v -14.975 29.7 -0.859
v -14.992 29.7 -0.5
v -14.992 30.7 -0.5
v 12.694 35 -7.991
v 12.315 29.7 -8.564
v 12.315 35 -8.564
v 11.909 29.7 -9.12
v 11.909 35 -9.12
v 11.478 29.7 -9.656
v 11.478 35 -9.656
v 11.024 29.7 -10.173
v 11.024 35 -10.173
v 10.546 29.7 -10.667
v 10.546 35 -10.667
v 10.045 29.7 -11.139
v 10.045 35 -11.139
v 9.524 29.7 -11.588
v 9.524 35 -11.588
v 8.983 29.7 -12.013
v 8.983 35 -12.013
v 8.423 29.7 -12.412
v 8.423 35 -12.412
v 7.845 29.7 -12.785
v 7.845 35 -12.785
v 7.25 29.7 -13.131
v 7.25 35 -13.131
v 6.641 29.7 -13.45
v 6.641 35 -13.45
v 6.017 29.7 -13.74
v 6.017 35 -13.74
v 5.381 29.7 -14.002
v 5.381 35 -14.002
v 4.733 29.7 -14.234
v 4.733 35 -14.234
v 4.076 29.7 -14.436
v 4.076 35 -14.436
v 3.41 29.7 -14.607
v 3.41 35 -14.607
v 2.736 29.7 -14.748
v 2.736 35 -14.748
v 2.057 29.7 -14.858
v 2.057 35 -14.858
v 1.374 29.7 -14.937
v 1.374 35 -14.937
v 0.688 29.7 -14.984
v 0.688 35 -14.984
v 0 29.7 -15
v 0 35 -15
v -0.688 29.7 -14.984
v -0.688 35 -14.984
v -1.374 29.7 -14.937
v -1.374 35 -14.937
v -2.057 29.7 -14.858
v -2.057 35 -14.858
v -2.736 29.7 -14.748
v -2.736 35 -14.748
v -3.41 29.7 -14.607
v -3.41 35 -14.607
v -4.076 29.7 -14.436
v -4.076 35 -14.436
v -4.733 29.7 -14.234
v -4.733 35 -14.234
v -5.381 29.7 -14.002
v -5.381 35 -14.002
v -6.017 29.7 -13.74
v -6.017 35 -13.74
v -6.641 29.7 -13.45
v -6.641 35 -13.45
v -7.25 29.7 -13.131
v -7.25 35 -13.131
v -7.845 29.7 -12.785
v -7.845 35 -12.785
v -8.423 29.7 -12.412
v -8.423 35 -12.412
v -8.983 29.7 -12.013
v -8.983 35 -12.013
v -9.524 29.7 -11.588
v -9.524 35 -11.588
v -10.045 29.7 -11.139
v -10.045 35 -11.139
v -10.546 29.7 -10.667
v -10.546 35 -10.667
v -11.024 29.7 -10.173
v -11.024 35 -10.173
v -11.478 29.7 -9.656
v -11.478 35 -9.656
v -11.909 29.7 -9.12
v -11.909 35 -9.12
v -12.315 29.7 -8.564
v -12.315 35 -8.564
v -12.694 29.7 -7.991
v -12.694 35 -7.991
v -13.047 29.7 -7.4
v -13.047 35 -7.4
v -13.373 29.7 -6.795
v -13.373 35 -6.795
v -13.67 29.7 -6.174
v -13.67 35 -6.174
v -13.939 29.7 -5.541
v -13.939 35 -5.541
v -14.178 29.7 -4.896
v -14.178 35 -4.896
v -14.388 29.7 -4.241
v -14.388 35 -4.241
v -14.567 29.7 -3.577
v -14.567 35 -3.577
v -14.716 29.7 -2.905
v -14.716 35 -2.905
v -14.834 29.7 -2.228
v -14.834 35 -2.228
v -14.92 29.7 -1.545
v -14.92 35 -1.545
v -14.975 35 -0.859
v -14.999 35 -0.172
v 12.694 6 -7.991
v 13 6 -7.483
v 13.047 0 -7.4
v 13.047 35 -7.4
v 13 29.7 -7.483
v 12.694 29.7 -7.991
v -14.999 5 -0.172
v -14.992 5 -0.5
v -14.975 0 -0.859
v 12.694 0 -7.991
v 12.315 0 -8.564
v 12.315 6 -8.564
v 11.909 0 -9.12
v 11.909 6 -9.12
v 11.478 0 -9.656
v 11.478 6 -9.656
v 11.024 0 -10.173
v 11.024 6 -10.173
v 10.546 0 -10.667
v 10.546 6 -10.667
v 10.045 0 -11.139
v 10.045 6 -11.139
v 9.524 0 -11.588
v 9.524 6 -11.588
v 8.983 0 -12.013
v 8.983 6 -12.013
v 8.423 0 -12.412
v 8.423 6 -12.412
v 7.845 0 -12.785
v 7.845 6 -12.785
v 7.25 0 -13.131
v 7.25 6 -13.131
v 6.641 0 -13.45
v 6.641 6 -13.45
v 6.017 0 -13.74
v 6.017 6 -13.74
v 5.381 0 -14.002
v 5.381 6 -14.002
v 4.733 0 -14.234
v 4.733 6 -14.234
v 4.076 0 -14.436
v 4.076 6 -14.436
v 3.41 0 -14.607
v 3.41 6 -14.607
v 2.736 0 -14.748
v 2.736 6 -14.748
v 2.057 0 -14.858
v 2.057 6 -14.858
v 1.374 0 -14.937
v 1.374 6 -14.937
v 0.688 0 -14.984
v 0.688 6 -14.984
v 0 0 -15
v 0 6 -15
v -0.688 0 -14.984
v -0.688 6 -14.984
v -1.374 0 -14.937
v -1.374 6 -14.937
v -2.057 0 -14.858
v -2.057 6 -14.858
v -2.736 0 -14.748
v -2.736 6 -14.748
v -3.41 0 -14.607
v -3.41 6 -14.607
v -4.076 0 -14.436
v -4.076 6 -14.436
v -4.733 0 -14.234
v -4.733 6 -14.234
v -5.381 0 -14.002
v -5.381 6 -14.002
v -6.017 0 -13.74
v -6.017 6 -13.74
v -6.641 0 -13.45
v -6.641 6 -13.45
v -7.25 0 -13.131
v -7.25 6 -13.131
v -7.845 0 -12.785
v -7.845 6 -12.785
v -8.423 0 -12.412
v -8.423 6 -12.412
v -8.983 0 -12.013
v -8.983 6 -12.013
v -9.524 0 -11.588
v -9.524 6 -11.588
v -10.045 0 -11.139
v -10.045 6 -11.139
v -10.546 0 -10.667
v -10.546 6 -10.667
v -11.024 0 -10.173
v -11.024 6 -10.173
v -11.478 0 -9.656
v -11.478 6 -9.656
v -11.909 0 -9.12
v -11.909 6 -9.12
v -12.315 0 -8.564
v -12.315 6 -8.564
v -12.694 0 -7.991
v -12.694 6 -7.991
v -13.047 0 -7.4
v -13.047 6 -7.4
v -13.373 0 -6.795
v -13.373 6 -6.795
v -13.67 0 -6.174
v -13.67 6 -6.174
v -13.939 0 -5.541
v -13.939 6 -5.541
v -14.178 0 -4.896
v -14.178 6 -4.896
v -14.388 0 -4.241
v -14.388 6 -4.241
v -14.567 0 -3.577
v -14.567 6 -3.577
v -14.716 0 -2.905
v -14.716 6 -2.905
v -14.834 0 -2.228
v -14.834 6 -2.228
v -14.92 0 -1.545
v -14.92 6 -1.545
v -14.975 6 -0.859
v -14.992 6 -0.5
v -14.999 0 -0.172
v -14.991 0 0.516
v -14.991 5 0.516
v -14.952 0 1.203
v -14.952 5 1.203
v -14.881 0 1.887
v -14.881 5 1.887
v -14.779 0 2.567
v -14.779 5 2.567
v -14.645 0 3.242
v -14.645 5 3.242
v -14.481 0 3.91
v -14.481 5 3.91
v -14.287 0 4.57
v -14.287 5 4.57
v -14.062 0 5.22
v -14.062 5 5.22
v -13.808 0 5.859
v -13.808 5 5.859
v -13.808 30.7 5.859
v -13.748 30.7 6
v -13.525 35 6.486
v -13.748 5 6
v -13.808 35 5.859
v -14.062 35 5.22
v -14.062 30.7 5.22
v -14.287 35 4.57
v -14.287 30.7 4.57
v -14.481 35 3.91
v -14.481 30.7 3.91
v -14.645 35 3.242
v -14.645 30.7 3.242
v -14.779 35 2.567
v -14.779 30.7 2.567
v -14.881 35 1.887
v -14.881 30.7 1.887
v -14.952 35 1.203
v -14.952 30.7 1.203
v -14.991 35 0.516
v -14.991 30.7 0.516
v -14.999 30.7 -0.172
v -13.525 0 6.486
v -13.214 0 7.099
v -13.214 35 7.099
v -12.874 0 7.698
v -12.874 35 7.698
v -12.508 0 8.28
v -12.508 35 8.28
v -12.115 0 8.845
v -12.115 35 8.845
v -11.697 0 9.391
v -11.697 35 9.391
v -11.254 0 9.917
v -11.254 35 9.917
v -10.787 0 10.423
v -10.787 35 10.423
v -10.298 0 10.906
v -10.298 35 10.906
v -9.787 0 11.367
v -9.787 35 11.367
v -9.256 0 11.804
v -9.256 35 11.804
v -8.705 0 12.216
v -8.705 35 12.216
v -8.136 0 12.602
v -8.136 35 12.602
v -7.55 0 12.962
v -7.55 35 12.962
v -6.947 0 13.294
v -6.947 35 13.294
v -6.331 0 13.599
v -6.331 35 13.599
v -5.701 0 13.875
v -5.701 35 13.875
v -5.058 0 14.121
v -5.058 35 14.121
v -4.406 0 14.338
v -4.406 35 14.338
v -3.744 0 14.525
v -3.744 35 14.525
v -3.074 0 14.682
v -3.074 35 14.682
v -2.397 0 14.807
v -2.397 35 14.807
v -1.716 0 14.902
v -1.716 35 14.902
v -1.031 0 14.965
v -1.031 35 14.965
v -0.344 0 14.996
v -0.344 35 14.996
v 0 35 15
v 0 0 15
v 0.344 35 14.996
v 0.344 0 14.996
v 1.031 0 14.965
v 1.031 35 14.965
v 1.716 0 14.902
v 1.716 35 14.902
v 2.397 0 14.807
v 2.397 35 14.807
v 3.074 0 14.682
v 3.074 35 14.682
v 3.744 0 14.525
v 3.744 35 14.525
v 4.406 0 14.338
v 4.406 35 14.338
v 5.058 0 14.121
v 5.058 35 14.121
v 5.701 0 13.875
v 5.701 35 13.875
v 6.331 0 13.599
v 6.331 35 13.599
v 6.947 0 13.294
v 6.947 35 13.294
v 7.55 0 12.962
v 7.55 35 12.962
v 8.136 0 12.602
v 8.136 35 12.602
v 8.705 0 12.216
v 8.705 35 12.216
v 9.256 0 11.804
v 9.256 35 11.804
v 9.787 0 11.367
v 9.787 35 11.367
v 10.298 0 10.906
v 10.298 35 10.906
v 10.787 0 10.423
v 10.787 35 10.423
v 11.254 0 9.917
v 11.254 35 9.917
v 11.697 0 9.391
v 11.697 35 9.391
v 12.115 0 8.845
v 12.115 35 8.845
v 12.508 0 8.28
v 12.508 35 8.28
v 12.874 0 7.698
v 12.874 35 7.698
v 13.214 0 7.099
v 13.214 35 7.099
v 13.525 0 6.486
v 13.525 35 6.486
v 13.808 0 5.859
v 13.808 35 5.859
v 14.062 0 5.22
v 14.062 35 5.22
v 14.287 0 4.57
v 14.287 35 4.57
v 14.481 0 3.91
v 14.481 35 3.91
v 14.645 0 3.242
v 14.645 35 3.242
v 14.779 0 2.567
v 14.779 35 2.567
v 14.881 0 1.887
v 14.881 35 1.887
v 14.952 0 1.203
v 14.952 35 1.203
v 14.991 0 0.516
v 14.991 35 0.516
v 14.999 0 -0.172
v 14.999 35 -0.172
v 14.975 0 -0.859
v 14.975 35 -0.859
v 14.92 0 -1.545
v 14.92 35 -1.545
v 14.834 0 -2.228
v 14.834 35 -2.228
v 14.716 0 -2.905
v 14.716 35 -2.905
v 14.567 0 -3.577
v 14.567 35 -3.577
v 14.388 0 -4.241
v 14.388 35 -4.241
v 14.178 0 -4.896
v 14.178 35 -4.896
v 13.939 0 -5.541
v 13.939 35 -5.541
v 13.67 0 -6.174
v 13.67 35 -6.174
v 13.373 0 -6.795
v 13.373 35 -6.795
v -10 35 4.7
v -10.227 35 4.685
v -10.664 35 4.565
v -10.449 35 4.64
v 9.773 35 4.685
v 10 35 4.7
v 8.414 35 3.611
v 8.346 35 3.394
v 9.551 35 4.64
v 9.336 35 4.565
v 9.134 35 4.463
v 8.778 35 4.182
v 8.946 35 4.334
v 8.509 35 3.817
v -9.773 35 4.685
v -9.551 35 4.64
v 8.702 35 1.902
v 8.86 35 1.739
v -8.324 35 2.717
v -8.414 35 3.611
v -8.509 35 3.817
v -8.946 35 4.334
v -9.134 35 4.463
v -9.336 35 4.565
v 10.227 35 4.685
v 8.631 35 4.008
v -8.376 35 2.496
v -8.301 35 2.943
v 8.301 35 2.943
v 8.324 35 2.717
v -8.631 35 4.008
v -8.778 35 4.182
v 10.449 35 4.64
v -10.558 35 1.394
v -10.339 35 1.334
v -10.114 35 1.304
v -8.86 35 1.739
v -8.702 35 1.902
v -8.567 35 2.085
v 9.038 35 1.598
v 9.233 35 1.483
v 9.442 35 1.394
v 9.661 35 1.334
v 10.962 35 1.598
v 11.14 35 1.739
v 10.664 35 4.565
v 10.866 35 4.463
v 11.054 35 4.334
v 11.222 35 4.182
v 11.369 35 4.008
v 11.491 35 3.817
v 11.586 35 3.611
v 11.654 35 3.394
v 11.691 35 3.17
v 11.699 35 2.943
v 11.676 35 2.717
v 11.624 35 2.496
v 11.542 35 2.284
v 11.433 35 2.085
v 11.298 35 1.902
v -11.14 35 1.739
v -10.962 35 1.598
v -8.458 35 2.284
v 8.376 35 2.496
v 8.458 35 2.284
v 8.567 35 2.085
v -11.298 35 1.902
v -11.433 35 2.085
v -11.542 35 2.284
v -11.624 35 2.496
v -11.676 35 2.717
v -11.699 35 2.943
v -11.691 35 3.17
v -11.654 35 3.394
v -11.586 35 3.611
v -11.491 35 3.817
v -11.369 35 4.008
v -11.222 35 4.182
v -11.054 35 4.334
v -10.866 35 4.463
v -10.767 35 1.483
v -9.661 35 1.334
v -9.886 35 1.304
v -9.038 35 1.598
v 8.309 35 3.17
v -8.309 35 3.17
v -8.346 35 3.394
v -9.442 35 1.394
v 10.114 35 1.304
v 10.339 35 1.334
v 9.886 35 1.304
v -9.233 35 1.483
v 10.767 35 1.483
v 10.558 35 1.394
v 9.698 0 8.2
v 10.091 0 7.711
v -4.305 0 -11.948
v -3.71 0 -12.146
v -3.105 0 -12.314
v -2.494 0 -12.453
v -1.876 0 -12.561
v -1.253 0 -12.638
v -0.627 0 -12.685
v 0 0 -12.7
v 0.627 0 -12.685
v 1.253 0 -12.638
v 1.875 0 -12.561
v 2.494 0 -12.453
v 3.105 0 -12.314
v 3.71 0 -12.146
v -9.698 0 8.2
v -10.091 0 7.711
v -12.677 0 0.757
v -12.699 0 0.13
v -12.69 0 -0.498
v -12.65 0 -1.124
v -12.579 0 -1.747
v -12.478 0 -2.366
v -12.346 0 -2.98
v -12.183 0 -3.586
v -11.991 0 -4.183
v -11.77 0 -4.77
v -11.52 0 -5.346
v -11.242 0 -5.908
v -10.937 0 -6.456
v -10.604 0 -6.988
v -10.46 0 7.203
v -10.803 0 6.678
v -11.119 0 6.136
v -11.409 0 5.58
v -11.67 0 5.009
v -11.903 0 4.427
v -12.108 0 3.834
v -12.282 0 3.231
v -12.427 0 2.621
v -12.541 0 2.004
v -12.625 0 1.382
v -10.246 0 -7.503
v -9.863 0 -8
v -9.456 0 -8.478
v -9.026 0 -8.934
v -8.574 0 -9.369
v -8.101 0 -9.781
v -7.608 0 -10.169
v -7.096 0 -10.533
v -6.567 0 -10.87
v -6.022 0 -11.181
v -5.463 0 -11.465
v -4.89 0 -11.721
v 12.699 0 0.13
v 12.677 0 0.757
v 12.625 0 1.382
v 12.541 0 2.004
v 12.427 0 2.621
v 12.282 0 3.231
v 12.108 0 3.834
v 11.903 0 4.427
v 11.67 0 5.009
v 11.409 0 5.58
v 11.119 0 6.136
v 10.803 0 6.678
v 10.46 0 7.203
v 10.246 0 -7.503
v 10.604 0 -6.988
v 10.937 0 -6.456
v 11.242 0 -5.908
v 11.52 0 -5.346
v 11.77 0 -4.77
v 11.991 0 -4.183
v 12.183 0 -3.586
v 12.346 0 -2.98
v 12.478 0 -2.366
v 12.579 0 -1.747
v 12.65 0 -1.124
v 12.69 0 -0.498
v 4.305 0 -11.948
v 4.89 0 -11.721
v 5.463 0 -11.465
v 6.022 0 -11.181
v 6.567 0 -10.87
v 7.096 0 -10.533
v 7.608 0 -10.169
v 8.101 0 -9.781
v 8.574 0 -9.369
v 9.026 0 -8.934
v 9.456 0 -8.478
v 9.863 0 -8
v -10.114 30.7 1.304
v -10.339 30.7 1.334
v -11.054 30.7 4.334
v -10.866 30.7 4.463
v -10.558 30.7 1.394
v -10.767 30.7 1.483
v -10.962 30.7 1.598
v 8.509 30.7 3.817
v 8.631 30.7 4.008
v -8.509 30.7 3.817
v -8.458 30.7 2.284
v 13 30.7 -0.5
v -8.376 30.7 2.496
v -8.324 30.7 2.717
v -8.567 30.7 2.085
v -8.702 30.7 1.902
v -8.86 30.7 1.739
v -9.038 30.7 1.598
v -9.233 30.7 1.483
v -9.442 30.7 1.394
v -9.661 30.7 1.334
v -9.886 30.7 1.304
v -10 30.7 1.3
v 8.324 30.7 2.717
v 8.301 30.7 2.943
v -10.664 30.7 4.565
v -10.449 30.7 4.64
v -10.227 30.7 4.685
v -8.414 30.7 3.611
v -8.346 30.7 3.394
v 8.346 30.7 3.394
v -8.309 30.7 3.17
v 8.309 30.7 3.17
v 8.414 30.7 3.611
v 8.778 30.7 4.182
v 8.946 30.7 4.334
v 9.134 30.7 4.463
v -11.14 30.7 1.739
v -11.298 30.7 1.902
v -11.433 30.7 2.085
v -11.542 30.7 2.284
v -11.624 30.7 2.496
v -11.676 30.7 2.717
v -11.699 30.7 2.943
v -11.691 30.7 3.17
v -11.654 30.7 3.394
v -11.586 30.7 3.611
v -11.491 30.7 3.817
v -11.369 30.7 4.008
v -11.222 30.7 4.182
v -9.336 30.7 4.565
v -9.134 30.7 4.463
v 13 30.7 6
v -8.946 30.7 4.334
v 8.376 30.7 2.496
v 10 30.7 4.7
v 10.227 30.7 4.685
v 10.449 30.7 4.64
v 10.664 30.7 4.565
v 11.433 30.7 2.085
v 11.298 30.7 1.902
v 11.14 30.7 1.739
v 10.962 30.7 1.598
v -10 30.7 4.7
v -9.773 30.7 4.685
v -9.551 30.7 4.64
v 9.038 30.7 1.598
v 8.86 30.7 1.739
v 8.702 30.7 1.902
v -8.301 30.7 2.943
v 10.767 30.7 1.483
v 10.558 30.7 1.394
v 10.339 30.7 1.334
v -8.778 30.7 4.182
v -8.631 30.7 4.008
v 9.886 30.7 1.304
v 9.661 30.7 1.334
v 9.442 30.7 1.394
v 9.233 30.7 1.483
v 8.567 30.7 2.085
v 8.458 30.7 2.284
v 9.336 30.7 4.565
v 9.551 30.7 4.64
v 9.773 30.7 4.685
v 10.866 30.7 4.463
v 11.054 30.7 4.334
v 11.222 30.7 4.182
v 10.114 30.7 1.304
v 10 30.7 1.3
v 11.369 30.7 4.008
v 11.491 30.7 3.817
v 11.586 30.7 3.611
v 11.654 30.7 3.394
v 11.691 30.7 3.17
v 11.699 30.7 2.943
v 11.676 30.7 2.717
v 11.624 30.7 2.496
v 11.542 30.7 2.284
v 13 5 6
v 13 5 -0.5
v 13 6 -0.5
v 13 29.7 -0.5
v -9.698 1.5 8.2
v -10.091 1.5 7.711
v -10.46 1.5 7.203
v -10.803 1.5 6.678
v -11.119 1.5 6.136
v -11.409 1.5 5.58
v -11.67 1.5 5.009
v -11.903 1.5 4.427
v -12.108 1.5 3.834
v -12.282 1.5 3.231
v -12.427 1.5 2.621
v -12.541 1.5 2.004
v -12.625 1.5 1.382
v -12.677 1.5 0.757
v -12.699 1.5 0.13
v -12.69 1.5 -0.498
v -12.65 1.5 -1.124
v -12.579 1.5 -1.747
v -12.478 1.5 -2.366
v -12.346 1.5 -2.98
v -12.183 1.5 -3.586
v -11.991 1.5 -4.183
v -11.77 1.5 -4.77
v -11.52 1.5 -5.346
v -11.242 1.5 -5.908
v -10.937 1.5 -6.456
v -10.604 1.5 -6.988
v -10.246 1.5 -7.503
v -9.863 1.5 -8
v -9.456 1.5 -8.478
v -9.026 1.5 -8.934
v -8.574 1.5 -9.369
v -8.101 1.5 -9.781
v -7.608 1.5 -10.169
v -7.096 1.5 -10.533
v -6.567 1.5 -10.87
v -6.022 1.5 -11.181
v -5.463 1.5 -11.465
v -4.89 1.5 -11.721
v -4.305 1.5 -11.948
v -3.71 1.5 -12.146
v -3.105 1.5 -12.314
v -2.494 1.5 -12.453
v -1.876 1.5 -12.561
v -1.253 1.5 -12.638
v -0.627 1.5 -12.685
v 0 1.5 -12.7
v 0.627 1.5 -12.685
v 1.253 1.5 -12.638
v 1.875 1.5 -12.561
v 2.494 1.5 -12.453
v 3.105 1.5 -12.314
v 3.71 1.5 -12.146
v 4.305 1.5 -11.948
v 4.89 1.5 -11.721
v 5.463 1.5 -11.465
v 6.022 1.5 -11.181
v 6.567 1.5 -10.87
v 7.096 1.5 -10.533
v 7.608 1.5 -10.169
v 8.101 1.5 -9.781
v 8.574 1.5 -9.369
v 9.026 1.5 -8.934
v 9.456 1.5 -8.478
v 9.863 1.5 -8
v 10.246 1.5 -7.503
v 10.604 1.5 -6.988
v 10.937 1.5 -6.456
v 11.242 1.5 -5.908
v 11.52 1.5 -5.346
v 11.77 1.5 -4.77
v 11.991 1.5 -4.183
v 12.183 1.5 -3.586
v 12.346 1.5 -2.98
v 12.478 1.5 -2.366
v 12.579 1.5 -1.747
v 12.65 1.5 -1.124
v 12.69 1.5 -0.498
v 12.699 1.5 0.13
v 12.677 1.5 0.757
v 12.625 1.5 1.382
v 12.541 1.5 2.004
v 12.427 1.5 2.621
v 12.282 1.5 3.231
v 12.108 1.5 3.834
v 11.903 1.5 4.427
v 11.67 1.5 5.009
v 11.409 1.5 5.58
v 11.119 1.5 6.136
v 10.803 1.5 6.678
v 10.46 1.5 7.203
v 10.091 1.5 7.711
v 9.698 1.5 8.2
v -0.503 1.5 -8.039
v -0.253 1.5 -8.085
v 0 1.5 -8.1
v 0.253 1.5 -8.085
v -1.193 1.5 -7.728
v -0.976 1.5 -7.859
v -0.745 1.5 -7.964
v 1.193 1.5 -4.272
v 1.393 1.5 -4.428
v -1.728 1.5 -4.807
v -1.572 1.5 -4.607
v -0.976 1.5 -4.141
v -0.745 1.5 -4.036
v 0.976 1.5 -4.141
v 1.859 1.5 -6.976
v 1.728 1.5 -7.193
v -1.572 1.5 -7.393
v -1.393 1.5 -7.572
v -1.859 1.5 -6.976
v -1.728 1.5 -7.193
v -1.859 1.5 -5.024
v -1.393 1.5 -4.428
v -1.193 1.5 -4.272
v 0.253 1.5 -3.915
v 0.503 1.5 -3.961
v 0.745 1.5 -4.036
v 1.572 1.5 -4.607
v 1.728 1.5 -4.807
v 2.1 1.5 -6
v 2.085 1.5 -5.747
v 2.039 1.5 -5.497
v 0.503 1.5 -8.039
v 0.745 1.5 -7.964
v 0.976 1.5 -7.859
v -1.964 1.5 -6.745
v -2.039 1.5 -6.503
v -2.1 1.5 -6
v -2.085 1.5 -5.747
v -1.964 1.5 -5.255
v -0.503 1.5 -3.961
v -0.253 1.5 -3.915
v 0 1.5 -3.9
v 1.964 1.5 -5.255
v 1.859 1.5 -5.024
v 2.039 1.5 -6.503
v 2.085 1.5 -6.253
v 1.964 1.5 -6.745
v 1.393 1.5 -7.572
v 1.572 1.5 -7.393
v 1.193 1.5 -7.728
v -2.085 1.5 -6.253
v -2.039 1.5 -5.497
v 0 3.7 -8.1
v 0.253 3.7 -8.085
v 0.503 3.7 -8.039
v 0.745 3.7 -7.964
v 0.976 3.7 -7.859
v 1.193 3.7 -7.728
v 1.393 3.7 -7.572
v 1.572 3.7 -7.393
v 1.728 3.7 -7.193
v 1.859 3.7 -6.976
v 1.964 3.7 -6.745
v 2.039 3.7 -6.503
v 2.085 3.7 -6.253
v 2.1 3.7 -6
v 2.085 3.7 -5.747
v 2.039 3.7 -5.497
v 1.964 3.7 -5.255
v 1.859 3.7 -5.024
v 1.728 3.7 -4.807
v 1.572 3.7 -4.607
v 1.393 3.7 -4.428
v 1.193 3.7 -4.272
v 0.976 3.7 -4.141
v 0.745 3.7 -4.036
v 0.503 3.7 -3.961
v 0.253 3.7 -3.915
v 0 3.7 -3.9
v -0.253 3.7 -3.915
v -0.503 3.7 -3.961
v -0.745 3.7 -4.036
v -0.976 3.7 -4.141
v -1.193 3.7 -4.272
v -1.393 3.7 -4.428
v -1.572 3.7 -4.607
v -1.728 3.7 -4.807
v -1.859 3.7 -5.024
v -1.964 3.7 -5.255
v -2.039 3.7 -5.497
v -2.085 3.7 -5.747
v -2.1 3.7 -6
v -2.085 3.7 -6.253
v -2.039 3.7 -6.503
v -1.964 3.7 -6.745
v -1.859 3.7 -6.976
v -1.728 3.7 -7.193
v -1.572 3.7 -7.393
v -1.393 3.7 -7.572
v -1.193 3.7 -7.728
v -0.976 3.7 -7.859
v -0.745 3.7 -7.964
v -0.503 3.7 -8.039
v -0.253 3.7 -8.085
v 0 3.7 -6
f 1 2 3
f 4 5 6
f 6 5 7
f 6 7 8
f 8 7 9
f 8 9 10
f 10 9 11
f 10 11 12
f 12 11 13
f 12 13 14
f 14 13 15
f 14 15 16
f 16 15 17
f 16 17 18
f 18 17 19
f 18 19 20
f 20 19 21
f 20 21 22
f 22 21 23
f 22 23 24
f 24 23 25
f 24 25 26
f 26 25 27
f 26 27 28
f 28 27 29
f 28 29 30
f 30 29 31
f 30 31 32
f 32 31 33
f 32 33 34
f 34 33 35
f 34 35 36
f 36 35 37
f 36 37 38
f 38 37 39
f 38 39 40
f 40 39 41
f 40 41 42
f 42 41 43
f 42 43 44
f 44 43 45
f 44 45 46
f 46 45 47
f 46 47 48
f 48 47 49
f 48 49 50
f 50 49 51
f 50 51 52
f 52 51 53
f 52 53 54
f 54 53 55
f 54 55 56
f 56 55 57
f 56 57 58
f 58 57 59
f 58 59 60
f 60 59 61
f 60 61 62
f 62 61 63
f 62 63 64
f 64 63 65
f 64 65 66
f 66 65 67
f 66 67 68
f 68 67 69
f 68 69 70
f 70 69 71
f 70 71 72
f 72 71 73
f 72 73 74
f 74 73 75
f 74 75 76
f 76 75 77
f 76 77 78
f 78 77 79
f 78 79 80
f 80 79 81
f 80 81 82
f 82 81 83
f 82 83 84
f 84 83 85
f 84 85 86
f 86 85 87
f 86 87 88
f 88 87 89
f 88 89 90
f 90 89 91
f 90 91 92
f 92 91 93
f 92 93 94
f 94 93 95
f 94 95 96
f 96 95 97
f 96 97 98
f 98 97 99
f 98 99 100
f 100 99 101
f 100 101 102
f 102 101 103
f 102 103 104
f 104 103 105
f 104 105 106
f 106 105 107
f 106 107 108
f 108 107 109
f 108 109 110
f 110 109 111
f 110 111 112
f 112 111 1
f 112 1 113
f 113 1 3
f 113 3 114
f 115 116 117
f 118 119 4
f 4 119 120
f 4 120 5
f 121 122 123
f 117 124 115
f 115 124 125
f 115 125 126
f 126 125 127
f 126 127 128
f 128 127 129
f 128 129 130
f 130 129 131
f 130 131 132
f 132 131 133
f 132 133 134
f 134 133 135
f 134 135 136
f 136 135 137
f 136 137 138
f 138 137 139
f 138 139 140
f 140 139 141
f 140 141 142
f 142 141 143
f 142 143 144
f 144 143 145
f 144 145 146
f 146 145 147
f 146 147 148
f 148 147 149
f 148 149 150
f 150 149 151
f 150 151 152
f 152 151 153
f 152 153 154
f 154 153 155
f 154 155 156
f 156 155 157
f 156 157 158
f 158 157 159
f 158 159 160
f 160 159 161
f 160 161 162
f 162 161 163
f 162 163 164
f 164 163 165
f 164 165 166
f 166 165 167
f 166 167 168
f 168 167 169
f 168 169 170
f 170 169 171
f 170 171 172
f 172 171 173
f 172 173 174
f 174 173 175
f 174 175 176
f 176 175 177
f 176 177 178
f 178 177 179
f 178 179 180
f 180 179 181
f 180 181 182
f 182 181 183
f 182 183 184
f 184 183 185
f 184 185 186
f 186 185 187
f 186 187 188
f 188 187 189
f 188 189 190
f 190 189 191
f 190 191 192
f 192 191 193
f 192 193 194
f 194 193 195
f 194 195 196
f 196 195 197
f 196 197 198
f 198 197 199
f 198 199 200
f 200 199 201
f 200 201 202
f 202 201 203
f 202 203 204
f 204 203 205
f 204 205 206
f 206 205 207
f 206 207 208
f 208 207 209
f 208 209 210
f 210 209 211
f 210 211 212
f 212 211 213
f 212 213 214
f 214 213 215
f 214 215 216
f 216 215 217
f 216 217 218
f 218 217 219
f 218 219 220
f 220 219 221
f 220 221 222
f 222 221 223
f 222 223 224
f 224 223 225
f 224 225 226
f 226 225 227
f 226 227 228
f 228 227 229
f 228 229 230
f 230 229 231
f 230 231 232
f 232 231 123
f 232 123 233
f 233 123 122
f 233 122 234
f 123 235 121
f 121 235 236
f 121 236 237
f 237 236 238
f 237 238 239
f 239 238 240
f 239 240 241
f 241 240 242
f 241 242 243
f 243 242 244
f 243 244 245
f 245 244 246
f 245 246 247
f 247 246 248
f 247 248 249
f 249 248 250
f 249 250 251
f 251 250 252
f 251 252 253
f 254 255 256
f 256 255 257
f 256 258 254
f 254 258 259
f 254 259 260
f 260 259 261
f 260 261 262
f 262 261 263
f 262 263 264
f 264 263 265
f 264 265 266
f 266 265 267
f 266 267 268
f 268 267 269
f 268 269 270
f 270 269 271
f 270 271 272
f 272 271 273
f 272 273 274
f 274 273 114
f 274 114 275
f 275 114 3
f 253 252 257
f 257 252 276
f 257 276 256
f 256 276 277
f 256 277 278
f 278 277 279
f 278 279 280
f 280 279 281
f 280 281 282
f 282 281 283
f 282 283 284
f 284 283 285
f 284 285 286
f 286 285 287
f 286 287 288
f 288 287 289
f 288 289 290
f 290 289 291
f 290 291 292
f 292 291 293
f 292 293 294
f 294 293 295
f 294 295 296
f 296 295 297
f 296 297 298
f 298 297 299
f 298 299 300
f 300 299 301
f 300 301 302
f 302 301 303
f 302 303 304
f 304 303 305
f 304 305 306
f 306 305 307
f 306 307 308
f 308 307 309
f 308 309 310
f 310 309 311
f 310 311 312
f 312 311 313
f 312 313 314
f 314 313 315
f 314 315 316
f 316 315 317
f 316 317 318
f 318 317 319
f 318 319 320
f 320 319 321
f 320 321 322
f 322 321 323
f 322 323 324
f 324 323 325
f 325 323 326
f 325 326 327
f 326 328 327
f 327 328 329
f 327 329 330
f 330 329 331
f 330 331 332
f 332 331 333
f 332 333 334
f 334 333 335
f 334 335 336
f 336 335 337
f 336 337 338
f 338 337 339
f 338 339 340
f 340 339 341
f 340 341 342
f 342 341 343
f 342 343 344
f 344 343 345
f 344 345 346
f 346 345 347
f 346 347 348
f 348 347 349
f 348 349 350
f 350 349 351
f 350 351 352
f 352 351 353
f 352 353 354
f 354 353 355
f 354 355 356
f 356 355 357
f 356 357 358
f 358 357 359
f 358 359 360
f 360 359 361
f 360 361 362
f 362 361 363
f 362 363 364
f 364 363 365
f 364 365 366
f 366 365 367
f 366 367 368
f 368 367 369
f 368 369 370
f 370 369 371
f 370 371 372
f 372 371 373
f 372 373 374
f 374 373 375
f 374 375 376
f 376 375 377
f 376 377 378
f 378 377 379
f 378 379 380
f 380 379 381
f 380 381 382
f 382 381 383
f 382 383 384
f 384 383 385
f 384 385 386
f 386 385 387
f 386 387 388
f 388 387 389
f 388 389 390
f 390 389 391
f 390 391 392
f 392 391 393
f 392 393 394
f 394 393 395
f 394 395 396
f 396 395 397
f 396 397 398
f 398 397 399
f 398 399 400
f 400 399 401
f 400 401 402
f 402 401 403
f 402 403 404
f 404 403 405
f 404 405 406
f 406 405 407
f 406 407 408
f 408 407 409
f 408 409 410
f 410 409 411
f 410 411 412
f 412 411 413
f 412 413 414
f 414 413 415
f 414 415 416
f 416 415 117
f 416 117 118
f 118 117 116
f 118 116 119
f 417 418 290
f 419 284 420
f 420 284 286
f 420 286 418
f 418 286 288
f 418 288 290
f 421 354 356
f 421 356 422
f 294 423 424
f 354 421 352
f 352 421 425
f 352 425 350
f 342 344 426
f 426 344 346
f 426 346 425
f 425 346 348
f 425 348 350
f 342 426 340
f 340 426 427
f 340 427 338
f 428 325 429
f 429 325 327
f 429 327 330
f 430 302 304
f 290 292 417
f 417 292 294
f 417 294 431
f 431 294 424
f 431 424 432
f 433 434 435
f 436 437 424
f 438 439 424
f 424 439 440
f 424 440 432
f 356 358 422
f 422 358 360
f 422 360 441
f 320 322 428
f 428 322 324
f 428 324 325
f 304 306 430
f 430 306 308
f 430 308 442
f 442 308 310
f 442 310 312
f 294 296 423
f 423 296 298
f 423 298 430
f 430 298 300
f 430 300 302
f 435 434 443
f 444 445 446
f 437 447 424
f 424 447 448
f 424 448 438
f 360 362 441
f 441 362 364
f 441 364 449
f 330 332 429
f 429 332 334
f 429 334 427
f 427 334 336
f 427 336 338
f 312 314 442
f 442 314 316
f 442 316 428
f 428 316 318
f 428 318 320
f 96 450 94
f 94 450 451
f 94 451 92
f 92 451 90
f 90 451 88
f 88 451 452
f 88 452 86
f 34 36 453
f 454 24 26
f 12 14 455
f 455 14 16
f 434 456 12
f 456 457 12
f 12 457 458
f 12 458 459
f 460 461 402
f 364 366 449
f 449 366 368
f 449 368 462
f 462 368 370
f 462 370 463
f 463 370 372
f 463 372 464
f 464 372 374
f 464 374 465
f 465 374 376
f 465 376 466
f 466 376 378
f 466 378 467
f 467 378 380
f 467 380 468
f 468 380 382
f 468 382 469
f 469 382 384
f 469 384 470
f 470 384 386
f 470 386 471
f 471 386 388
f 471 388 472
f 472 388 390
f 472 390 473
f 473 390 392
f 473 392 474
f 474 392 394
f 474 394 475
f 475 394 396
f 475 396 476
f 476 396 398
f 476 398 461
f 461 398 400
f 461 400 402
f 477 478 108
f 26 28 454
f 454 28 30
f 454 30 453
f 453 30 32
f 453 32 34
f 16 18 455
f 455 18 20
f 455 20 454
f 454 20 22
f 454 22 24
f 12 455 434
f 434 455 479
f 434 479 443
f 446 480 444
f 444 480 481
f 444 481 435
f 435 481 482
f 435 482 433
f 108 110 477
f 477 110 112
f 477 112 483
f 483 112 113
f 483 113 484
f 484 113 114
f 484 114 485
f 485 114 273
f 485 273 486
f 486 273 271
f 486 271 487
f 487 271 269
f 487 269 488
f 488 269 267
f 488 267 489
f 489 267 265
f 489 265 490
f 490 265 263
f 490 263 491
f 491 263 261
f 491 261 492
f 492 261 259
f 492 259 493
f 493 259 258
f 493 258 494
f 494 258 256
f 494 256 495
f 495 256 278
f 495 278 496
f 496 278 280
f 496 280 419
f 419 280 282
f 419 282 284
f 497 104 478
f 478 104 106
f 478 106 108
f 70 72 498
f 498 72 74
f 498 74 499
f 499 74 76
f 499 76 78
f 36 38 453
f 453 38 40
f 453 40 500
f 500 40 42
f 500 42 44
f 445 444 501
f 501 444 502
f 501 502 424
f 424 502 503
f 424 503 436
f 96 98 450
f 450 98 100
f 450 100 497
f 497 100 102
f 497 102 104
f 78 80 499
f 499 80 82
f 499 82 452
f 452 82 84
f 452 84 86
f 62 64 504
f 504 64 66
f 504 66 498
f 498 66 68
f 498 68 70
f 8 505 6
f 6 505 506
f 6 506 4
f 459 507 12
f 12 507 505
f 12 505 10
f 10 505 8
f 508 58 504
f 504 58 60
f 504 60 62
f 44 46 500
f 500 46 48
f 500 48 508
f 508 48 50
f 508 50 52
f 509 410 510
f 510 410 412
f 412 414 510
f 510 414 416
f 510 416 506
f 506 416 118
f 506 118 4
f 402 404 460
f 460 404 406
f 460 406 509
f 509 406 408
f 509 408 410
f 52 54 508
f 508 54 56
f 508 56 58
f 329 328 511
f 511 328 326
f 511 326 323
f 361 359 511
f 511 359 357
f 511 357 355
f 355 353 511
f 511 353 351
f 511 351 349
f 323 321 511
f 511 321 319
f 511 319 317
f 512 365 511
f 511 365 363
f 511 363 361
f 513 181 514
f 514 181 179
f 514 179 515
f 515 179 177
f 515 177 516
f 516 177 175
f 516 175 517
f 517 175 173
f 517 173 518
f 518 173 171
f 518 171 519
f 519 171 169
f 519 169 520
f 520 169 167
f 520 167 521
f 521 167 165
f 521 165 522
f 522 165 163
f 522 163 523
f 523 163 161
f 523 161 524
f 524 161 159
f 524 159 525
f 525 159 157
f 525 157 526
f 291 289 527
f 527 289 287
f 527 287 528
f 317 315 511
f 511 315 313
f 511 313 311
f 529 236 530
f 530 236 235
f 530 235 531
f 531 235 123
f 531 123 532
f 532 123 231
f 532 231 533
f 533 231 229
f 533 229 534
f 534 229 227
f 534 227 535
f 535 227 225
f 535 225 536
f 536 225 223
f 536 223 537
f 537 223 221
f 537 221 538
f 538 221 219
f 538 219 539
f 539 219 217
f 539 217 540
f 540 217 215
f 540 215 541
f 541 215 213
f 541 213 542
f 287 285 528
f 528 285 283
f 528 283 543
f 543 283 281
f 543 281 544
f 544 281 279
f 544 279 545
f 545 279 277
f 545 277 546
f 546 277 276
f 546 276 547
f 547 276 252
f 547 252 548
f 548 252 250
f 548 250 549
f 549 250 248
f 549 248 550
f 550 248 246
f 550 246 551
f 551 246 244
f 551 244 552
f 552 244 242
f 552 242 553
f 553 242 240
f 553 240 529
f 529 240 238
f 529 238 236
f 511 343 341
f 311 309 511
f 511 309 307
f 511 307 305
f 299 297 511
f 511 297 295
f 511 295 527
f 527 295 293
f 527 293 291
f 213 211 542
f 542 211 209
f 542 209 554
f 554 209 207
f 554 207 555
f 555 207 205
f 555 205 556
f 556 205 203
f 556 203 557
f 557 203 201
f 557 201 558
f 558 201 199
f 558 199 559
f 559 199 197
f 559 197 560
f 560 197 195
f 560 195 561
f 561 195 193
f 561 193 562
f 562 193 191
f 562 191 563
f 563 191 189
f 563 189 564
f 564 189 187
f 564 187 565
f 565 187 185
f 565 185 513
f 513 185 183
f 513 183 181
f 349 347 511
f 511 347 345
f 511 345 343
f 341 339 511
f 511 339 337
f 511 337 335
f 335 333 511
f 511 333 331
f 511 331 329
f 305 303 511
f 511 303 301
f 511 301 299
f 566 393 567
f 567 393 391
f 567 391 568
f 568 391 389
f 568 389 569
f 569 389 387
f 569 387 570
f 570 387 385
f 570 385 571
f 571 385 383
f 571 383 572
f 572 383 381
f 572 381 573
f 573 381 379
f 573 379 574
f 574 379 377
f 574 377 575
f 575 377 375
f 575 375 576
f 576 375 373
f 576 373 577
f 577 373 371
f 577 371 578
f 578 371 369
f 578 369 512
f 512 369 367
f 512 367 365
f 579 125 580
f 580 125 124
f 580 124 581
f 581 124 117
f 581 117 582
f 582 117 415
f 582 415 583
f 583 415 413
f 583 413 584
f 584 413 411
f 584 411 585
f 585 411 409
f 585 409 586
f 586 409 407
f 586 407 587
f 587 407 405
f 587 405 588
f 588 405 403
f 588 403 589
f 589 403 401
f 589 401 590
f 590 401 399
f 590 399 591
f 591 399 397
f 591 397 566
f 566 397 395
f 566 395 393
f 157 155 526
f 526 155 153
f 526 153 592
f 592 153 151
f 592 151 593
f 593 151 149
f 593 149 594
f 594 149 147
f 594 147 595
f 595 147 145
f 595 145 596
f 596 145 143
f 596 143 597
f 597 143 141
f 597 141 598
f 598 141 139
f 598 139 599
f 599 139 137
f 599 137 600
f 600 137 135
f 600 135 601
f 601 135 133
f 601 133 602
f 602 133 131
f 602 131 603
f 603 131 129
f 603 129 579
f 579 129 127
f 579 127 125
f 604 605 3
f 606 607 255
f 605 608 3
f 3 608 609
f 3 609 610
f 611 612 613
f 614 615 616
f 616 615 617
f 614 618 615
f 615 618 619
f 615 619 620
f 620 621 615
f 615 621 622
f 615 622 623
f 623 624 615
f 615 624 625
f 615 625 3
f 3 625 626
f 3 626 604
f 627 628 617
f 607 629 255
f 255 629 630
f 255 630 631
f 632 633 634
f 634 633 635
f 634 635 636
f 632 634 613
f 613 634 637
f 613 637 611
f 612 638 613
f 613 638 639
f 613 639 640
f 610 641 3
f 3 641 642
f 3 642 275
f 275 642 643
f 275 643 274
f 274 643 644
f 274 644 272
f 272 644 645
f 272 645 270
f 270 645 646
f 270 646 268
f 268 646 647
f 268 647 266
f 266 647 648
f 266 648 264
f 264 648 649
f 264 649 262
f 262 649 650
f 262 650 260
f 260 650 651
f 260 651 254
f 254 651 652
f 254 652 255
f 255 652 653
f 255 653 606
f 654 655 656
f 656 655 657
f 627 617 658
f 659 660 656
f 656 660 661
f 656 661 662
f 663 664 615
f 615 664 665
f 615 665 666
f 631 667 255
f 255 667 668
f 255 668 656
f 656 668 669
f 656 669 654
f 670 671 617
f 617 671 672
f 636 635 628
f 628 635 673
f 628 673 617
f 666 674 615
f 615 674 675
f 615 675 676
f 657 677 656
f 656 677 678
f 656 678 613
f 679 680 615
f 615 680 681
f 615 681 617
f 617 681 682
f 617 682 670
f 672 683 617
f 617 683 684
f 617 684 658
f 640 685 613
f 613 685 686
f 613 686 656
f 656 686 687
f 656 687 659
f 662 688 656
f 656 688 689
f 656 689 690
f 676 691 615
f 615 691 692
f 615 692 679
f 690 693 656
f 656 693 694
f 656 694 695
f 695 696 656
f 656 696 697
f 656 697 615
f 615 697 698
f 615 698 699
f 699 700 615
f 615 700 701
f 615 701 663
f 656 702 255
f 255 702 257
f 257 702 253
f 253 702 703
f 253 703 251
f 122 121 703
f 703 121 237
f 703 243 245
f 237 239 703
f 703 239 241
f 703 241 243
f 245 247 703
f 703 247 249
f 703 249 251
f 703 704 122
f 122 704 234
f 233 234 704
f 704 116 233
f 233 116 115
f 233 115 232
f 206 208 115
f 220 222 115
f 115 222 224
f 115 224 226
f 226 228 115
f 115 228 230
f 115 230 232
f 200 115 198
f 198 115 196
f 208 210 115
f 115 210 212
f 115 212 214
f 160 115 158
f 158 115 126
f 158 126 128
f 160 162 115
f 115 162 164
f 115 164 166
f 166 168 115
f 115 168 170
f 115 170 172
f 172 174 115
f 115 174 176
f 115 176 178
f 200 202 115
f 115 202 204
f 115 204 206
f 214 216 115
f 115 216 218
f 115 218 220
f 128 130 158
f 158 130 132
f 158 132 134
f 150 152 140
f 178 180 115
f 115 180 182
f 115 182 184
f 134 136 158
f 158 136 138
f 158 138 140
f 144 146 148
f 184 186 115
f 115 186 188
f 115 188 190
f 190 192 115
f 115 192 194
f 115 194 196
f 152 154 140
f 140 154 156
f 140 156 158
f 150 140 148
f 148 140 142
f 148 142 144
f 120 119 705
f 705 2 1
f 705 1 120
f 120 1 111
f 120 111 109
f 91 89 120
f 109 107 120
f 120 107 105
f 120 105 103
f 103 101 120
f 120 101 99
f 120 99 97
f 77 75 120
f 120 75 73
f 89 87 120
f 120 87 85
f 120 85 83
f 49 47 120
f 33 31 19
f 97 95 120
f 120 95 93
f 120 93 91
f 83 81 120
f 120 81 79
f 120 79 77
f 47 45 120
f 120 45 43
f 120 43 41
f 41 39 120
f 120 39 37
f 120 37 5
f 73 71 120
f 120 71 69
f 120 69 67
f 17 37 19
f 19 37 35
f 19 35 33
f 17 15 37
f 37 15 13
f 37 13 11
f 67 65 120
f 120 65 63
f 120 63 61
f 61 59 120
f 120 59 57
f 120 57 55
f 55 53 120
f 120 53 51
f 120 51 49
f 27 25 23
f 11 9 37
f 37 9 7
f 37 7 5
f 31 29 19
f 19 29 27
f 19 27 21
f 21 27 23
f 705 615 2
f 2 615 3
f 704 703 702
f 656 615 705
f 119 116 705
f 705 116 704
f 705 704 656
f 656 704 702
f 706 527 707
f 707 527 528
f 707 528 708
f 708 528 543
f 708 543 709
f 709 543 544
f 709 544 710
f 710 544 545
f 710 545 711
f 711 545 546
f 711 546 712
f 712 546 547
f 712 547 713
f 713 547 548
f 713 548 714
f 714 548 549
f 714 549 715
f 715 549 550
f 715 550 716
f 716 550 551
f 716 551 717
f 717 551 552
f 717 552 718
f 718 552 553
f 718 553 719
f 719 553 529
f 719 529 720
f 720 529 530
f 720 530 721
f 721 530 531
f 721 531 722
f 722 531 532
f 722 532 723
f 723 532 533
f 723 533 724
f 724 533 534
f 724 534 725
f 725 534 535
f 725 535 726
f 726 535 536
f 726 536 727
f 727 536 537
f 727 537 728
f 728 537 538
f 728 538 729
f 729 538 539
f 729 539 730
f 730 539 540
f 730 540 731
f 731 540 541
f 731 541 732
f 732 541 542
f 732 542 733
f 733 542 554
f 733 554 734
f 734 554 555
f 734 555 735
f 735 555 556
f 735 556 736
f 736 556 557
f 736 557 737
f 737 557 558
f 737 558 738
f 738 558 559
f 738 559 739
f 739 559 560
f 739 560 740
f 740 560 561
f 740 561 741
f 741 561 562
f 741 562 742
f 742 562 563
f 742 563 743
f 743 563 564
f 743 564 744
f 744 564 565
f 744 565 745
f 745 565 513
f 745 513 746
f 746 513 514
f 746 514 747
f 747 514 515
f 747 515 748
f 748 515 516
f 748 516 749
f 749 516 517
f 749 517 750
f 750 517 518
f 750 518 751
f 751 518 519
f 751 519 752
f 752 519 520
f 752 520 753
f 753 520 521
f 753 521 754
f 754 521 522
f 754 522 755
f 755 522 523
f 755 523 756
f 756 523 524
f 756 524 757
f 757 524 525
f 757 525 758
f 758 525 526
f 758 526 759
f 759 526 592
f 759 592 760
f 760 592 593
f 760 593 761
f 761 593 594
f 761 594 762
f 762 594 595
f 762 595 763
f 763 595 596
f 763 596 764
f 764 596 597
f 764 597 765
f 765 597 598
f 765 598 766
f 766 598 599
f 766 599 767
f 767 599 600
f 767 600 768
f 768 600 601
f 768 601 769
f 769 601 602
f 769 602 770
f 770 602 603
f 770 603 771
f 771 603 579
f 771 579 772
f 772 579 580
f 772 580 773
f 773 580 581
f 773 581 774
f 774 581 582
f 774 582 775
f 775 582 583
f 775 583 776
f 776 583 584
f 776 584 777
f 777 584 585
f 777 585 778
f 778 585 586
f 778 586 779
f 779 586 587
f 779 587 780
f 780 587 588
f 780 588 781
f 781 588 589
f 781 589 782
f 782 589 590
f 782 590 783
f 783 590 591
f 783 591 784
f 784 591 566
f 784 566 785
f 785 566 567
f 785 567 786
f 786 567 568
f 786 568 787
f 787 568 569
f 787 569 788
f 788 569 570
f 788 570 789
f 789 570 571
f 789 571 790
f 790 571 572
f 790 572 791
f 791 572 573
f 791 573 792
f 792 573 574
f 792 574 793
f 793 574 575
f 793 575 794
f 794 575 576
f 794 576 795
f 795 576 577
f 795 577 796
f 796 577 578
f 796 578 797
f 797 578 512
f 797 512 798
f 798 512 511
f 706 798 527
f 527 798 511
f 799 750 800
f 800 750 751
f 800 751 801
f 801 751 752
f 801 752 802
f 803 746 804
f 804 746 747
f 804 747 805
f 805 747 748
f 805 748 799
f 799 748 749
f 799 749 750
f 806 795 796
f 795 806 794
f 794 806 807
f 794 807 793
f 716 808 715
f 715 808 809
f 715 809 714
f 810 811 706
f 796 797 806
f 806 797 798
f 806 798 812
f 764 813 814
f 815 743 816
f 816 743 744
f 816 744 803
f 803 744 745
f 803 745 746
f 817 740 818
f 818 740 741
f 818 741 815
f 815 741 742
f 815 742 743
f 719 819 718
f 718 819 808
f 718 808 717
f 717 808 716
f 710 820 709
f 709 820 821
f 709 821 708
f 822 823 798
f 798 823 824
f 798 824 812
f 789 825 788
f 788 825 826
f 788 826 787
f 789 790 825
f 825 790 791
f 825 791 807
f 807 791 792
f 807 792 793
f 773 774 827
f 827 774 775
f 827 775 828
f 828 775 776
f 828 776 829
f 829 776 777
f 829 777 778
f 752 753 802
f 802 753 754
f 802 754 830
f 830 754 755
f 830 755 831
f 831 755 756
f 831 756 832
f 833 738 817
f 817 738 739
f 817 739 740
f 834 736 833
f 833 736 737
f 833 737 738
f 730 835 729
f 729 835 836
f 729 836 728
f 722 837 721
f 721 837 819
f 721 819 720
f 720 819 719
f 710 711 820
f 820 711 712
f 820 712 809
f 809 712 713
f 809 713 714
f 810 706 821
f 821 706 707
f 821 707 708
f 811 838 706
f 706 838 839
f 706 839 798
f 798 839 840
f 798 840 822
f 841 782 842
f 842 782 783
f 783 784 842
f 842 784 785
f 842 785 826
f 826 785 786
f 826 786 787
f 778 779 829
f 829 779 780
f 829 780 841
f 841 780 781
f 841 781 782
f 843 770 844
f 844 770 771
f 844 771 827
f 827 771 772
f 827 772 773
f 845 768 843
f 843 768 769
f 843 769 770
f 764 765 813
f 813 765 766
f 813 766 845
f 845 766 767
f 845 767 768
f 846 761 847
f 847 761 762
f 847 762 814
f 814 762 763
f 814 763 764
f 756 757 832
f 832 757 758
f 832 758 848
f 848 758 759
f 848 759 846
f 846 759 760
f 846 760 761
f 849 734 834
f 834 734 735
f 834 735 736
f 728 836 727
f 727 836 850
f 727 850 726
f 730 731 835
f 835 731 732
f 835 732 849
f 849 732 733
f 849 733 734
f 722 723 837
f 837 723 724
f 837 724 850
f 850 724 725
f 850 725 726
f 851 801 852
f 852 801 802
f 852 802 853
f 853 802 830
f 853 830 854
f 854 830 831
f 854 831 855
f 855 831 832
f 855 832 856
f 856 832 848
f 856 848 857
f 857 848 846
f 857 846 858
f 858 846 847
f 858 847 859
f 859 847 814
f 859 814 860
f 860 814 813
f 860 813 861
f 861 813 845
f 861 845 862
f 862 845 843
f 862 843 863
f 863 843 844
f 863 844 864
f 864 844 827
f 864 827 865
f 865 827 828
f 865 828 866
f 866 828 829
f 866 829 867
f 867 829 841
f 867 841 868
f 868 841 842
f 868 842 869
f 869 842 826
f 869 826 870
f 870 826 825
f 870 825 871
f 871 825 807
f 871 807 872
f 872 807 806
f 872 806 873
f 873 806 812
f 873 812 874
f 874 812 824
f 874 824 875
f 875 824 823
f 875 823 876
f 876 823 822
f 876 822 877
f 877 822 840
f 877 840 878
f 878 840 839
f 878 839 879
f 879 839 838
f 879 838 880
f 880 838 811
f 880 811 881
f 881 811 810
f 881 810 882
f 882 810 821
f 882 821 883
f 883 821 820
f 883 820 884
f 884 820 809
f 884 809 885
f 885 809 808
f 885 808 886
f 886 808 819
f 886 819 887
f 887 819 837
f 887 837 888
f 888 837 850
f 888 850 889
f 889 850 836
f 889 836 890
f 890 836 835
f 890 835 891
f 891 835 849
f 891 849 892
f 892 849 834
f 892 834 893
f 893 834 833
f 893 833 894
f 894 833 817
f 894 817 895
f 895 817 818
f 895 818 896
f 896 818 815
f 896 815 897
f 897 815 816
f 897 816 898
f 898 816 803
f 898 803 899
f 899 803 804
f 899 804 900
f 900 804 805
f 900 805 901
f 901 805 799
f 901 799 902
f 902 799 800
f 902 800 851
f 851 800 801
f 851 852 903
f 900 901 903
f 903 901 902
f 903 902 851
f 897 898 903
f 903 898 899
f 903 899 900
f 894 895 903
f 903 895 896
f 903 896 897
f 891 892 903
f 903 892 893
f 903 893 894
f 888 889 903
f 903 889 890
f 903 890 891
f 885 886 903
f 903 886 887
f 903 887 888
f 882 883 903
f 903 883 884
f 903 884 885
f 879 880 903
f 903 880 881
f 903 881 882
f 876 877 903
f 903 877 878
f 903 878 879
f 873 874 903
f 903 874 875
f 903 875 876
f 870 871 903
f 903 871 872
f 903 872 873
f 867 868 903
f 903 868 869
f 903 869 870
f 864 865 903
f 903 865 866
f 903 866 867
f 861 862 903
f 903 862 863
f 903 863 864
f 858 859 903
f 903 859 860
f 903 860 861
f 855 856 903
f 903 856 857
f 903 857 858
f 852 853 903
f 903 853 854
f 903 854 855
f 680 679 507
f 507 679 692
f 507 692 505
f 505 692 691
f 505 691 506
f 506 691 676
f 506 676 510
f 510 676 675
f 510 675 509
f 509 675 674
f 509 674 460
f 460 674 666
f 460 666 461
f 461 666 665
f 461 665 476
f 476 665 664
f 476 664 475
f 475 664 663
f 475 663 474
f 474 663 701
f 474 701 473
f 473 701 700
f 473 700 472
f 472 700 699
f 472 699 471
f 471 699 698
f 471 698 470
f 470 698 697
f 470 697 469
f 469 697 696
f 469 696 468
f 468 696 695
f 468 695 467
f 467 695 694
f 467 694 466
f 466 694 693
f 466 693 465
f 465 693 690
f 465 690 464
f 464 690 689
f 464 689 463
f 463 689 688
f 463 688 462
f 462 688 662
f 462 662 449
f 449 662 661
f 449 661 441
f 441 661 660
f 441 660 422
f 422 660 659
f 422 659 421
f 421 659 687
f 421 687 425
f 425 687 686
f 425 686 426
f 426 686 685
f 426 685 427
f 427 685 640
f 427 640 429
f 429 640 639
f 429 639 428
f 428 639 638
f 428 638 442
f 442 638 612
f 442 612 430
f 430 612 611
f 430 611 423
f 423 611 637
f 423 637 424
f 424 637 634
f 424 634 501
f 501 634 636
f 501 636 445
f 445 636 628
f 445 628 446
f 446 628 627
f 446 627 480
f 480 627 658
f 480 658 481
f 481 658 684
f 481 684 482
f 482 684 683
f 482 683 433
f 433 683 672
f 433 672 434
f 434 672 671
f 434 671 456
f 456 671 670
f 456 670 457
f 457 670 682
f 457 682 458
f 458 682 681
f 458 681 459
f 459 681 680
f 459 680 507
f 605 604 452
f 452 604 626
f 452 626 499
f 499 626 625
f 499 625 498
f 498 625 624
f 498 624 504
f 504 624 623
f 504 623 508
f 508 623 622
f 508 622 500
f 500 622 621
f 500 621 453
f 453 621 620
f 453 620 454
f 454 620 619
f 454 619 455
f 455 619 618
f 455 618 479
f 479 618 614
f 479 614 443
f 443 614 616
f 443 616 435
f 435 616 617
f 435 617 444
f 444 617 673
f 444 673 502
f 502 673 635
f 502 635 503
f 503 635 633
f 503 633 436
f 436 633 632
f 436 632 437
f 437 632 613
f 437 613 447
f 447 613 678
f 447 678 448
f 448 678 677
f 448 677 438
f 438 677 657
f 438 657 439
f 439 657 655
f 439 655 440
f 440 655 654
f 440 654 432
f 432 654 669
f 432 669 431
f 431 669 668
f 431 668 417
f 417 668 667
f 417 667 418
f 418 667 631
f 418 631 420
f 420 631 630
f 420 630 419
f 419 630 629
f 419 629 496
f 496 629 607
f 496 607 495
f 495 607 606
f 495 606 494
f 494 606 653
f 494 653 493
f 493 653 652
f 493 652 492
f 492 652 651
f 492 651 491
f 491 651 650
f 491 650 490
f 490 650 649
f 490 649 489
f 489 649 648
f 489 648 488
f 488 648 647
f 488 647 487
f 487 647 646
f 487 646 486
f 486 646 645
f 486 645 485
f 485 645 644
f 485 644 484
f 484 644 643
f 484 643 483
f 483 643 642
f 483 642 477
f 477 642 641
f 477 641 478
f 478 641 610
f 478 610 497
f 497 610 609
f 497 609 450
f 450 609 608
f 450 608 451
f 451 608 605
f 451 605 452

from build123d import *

# Parameters (mm, degrees)
SKETCH1_R               = 15
BOSS_EXTRUDE1_DEPTH     = 35
CUT_EXTRUDE4_DEPTH      = 13
CUT_EXTRUDE4_DEPTH_BACK = 16
CUT_EXTRUDE5_DEPTH      = 1.5
SKETCH7_R               = 2.1
CUT_EXTRUDE6_DEPTH      = 2.2
CUT_EXTRUDE7_REACH      = 42.927
SKETCH8_R               = 1.7


with BuildPart() as part:
    # Sketch1 → Boss-Extrude1 (new body)
    with BuildSketch(Plane(origin=(0, 0, 0), x_dir=(1, 0, 0), z_dir=(0, 1, 0))):
        with Locations(Location((0, 0, 0), (0, 0, 270))):
            Circle(SKETCH1_R)
    extrude(amount=BOSS_EXTRUDE1_DEPTH)

    # Sketch5 → Cut-Extrude4 (cut, two sides: drawn at the far end of the back side and taken through both)
    with BuildSketch(Plane(origin=(0, 0, 0), x_dir=(0, 0, -1), z_dir=(1, 0, 0)).offset(-CUT_EXTRUDE4_DEPTH_BACK)):
        Polygon((-6, 30.7), (-6, 5), (0.5, 5), (0.5, 6), (16, 6), (16, 29.7), (0.5, 29.7), (0.5, 30.7), align=None)
    extrude(amount=CUT_EXTRUDE4_DEPTH + CUT_EXTRUDE4_DEPTH_BACK, mode=Mode.SUBTRACT)

    # Sketch6 → Cut-Extrude5 (cut)
    with BuildSketch(Plane.XZ):
        with BuildLine():
            Line((-9.697937925, 8.2), (9.697937925, 8.2))
            ThreePointArc((9.697937925, 8.2), (0, -12.7), (-9.697937925, 8.2))
        make_face()
    extrude(amount=-CUT_EXTRUDE5_DEPTH, mode=Mode.SUBTRACT)

    # Sketch7 → Cut-Extrude6 (cut)
    with BuildSketch(Plane.XZ.offset(-1.5)):
        with Locations(Location((0, -6, 0), (0, 0, 270))):
            Circle(SKETCH7_R)
    extrude(amount=-CUT_EXTRUDE6_DEPTH, mode=Mode.SUBTRACT)

    # Sketch8 → Cut-Extrude7 (cut, up to next)
    with BuildSketch(Plane(origin=(0, 35, 0), x_dir=(1, 0, 0), z_dir=(0, 1, 0)), mode=Mode.PRIVATE) as cut_extrude7_sk1:
        with Locations(Location((-10, -3, 0), (0, 0, 270))):
            Circle(SKETCH8_R)
    cut_extrude7_tool1 = extrude(cut_extrude7_sk1.sketch, amount=-CUT_EXTRUDE7_REACH, mode=Mode.PRIVATE) & part.part
    # Sketch8 → Cut-Extrude7 (cut, up to next)
    with BuildSketch(Plane(origin=(0, 35, 0), x_dir=(1, 0, 0), z_dir=(0, 1, 0)), mode=Mode.PRIVATE) as cut_extrude7_sk2:
        with Locations(Location((10, -3, 0), (0, 0, 270))):
            Circle(SKETCH8_R)
    cut_extrude7_tool2 = extrude(cut_extrude7_sk2.sketch, amount=-CUT_EXTRUDE7_REACH, mode=Mode.PRIVATE) & part.part
    add(cut_extrude7_tool1.solids().sort_by_distance((-10, 35, 3))[0], mode=Mode.SUBTRACT)
    add(cut_extrude7_tool2.solids().sort_by_distance((10, 35, 3))[0], mode=Mode.SUBTRACT)


solid = part.part
